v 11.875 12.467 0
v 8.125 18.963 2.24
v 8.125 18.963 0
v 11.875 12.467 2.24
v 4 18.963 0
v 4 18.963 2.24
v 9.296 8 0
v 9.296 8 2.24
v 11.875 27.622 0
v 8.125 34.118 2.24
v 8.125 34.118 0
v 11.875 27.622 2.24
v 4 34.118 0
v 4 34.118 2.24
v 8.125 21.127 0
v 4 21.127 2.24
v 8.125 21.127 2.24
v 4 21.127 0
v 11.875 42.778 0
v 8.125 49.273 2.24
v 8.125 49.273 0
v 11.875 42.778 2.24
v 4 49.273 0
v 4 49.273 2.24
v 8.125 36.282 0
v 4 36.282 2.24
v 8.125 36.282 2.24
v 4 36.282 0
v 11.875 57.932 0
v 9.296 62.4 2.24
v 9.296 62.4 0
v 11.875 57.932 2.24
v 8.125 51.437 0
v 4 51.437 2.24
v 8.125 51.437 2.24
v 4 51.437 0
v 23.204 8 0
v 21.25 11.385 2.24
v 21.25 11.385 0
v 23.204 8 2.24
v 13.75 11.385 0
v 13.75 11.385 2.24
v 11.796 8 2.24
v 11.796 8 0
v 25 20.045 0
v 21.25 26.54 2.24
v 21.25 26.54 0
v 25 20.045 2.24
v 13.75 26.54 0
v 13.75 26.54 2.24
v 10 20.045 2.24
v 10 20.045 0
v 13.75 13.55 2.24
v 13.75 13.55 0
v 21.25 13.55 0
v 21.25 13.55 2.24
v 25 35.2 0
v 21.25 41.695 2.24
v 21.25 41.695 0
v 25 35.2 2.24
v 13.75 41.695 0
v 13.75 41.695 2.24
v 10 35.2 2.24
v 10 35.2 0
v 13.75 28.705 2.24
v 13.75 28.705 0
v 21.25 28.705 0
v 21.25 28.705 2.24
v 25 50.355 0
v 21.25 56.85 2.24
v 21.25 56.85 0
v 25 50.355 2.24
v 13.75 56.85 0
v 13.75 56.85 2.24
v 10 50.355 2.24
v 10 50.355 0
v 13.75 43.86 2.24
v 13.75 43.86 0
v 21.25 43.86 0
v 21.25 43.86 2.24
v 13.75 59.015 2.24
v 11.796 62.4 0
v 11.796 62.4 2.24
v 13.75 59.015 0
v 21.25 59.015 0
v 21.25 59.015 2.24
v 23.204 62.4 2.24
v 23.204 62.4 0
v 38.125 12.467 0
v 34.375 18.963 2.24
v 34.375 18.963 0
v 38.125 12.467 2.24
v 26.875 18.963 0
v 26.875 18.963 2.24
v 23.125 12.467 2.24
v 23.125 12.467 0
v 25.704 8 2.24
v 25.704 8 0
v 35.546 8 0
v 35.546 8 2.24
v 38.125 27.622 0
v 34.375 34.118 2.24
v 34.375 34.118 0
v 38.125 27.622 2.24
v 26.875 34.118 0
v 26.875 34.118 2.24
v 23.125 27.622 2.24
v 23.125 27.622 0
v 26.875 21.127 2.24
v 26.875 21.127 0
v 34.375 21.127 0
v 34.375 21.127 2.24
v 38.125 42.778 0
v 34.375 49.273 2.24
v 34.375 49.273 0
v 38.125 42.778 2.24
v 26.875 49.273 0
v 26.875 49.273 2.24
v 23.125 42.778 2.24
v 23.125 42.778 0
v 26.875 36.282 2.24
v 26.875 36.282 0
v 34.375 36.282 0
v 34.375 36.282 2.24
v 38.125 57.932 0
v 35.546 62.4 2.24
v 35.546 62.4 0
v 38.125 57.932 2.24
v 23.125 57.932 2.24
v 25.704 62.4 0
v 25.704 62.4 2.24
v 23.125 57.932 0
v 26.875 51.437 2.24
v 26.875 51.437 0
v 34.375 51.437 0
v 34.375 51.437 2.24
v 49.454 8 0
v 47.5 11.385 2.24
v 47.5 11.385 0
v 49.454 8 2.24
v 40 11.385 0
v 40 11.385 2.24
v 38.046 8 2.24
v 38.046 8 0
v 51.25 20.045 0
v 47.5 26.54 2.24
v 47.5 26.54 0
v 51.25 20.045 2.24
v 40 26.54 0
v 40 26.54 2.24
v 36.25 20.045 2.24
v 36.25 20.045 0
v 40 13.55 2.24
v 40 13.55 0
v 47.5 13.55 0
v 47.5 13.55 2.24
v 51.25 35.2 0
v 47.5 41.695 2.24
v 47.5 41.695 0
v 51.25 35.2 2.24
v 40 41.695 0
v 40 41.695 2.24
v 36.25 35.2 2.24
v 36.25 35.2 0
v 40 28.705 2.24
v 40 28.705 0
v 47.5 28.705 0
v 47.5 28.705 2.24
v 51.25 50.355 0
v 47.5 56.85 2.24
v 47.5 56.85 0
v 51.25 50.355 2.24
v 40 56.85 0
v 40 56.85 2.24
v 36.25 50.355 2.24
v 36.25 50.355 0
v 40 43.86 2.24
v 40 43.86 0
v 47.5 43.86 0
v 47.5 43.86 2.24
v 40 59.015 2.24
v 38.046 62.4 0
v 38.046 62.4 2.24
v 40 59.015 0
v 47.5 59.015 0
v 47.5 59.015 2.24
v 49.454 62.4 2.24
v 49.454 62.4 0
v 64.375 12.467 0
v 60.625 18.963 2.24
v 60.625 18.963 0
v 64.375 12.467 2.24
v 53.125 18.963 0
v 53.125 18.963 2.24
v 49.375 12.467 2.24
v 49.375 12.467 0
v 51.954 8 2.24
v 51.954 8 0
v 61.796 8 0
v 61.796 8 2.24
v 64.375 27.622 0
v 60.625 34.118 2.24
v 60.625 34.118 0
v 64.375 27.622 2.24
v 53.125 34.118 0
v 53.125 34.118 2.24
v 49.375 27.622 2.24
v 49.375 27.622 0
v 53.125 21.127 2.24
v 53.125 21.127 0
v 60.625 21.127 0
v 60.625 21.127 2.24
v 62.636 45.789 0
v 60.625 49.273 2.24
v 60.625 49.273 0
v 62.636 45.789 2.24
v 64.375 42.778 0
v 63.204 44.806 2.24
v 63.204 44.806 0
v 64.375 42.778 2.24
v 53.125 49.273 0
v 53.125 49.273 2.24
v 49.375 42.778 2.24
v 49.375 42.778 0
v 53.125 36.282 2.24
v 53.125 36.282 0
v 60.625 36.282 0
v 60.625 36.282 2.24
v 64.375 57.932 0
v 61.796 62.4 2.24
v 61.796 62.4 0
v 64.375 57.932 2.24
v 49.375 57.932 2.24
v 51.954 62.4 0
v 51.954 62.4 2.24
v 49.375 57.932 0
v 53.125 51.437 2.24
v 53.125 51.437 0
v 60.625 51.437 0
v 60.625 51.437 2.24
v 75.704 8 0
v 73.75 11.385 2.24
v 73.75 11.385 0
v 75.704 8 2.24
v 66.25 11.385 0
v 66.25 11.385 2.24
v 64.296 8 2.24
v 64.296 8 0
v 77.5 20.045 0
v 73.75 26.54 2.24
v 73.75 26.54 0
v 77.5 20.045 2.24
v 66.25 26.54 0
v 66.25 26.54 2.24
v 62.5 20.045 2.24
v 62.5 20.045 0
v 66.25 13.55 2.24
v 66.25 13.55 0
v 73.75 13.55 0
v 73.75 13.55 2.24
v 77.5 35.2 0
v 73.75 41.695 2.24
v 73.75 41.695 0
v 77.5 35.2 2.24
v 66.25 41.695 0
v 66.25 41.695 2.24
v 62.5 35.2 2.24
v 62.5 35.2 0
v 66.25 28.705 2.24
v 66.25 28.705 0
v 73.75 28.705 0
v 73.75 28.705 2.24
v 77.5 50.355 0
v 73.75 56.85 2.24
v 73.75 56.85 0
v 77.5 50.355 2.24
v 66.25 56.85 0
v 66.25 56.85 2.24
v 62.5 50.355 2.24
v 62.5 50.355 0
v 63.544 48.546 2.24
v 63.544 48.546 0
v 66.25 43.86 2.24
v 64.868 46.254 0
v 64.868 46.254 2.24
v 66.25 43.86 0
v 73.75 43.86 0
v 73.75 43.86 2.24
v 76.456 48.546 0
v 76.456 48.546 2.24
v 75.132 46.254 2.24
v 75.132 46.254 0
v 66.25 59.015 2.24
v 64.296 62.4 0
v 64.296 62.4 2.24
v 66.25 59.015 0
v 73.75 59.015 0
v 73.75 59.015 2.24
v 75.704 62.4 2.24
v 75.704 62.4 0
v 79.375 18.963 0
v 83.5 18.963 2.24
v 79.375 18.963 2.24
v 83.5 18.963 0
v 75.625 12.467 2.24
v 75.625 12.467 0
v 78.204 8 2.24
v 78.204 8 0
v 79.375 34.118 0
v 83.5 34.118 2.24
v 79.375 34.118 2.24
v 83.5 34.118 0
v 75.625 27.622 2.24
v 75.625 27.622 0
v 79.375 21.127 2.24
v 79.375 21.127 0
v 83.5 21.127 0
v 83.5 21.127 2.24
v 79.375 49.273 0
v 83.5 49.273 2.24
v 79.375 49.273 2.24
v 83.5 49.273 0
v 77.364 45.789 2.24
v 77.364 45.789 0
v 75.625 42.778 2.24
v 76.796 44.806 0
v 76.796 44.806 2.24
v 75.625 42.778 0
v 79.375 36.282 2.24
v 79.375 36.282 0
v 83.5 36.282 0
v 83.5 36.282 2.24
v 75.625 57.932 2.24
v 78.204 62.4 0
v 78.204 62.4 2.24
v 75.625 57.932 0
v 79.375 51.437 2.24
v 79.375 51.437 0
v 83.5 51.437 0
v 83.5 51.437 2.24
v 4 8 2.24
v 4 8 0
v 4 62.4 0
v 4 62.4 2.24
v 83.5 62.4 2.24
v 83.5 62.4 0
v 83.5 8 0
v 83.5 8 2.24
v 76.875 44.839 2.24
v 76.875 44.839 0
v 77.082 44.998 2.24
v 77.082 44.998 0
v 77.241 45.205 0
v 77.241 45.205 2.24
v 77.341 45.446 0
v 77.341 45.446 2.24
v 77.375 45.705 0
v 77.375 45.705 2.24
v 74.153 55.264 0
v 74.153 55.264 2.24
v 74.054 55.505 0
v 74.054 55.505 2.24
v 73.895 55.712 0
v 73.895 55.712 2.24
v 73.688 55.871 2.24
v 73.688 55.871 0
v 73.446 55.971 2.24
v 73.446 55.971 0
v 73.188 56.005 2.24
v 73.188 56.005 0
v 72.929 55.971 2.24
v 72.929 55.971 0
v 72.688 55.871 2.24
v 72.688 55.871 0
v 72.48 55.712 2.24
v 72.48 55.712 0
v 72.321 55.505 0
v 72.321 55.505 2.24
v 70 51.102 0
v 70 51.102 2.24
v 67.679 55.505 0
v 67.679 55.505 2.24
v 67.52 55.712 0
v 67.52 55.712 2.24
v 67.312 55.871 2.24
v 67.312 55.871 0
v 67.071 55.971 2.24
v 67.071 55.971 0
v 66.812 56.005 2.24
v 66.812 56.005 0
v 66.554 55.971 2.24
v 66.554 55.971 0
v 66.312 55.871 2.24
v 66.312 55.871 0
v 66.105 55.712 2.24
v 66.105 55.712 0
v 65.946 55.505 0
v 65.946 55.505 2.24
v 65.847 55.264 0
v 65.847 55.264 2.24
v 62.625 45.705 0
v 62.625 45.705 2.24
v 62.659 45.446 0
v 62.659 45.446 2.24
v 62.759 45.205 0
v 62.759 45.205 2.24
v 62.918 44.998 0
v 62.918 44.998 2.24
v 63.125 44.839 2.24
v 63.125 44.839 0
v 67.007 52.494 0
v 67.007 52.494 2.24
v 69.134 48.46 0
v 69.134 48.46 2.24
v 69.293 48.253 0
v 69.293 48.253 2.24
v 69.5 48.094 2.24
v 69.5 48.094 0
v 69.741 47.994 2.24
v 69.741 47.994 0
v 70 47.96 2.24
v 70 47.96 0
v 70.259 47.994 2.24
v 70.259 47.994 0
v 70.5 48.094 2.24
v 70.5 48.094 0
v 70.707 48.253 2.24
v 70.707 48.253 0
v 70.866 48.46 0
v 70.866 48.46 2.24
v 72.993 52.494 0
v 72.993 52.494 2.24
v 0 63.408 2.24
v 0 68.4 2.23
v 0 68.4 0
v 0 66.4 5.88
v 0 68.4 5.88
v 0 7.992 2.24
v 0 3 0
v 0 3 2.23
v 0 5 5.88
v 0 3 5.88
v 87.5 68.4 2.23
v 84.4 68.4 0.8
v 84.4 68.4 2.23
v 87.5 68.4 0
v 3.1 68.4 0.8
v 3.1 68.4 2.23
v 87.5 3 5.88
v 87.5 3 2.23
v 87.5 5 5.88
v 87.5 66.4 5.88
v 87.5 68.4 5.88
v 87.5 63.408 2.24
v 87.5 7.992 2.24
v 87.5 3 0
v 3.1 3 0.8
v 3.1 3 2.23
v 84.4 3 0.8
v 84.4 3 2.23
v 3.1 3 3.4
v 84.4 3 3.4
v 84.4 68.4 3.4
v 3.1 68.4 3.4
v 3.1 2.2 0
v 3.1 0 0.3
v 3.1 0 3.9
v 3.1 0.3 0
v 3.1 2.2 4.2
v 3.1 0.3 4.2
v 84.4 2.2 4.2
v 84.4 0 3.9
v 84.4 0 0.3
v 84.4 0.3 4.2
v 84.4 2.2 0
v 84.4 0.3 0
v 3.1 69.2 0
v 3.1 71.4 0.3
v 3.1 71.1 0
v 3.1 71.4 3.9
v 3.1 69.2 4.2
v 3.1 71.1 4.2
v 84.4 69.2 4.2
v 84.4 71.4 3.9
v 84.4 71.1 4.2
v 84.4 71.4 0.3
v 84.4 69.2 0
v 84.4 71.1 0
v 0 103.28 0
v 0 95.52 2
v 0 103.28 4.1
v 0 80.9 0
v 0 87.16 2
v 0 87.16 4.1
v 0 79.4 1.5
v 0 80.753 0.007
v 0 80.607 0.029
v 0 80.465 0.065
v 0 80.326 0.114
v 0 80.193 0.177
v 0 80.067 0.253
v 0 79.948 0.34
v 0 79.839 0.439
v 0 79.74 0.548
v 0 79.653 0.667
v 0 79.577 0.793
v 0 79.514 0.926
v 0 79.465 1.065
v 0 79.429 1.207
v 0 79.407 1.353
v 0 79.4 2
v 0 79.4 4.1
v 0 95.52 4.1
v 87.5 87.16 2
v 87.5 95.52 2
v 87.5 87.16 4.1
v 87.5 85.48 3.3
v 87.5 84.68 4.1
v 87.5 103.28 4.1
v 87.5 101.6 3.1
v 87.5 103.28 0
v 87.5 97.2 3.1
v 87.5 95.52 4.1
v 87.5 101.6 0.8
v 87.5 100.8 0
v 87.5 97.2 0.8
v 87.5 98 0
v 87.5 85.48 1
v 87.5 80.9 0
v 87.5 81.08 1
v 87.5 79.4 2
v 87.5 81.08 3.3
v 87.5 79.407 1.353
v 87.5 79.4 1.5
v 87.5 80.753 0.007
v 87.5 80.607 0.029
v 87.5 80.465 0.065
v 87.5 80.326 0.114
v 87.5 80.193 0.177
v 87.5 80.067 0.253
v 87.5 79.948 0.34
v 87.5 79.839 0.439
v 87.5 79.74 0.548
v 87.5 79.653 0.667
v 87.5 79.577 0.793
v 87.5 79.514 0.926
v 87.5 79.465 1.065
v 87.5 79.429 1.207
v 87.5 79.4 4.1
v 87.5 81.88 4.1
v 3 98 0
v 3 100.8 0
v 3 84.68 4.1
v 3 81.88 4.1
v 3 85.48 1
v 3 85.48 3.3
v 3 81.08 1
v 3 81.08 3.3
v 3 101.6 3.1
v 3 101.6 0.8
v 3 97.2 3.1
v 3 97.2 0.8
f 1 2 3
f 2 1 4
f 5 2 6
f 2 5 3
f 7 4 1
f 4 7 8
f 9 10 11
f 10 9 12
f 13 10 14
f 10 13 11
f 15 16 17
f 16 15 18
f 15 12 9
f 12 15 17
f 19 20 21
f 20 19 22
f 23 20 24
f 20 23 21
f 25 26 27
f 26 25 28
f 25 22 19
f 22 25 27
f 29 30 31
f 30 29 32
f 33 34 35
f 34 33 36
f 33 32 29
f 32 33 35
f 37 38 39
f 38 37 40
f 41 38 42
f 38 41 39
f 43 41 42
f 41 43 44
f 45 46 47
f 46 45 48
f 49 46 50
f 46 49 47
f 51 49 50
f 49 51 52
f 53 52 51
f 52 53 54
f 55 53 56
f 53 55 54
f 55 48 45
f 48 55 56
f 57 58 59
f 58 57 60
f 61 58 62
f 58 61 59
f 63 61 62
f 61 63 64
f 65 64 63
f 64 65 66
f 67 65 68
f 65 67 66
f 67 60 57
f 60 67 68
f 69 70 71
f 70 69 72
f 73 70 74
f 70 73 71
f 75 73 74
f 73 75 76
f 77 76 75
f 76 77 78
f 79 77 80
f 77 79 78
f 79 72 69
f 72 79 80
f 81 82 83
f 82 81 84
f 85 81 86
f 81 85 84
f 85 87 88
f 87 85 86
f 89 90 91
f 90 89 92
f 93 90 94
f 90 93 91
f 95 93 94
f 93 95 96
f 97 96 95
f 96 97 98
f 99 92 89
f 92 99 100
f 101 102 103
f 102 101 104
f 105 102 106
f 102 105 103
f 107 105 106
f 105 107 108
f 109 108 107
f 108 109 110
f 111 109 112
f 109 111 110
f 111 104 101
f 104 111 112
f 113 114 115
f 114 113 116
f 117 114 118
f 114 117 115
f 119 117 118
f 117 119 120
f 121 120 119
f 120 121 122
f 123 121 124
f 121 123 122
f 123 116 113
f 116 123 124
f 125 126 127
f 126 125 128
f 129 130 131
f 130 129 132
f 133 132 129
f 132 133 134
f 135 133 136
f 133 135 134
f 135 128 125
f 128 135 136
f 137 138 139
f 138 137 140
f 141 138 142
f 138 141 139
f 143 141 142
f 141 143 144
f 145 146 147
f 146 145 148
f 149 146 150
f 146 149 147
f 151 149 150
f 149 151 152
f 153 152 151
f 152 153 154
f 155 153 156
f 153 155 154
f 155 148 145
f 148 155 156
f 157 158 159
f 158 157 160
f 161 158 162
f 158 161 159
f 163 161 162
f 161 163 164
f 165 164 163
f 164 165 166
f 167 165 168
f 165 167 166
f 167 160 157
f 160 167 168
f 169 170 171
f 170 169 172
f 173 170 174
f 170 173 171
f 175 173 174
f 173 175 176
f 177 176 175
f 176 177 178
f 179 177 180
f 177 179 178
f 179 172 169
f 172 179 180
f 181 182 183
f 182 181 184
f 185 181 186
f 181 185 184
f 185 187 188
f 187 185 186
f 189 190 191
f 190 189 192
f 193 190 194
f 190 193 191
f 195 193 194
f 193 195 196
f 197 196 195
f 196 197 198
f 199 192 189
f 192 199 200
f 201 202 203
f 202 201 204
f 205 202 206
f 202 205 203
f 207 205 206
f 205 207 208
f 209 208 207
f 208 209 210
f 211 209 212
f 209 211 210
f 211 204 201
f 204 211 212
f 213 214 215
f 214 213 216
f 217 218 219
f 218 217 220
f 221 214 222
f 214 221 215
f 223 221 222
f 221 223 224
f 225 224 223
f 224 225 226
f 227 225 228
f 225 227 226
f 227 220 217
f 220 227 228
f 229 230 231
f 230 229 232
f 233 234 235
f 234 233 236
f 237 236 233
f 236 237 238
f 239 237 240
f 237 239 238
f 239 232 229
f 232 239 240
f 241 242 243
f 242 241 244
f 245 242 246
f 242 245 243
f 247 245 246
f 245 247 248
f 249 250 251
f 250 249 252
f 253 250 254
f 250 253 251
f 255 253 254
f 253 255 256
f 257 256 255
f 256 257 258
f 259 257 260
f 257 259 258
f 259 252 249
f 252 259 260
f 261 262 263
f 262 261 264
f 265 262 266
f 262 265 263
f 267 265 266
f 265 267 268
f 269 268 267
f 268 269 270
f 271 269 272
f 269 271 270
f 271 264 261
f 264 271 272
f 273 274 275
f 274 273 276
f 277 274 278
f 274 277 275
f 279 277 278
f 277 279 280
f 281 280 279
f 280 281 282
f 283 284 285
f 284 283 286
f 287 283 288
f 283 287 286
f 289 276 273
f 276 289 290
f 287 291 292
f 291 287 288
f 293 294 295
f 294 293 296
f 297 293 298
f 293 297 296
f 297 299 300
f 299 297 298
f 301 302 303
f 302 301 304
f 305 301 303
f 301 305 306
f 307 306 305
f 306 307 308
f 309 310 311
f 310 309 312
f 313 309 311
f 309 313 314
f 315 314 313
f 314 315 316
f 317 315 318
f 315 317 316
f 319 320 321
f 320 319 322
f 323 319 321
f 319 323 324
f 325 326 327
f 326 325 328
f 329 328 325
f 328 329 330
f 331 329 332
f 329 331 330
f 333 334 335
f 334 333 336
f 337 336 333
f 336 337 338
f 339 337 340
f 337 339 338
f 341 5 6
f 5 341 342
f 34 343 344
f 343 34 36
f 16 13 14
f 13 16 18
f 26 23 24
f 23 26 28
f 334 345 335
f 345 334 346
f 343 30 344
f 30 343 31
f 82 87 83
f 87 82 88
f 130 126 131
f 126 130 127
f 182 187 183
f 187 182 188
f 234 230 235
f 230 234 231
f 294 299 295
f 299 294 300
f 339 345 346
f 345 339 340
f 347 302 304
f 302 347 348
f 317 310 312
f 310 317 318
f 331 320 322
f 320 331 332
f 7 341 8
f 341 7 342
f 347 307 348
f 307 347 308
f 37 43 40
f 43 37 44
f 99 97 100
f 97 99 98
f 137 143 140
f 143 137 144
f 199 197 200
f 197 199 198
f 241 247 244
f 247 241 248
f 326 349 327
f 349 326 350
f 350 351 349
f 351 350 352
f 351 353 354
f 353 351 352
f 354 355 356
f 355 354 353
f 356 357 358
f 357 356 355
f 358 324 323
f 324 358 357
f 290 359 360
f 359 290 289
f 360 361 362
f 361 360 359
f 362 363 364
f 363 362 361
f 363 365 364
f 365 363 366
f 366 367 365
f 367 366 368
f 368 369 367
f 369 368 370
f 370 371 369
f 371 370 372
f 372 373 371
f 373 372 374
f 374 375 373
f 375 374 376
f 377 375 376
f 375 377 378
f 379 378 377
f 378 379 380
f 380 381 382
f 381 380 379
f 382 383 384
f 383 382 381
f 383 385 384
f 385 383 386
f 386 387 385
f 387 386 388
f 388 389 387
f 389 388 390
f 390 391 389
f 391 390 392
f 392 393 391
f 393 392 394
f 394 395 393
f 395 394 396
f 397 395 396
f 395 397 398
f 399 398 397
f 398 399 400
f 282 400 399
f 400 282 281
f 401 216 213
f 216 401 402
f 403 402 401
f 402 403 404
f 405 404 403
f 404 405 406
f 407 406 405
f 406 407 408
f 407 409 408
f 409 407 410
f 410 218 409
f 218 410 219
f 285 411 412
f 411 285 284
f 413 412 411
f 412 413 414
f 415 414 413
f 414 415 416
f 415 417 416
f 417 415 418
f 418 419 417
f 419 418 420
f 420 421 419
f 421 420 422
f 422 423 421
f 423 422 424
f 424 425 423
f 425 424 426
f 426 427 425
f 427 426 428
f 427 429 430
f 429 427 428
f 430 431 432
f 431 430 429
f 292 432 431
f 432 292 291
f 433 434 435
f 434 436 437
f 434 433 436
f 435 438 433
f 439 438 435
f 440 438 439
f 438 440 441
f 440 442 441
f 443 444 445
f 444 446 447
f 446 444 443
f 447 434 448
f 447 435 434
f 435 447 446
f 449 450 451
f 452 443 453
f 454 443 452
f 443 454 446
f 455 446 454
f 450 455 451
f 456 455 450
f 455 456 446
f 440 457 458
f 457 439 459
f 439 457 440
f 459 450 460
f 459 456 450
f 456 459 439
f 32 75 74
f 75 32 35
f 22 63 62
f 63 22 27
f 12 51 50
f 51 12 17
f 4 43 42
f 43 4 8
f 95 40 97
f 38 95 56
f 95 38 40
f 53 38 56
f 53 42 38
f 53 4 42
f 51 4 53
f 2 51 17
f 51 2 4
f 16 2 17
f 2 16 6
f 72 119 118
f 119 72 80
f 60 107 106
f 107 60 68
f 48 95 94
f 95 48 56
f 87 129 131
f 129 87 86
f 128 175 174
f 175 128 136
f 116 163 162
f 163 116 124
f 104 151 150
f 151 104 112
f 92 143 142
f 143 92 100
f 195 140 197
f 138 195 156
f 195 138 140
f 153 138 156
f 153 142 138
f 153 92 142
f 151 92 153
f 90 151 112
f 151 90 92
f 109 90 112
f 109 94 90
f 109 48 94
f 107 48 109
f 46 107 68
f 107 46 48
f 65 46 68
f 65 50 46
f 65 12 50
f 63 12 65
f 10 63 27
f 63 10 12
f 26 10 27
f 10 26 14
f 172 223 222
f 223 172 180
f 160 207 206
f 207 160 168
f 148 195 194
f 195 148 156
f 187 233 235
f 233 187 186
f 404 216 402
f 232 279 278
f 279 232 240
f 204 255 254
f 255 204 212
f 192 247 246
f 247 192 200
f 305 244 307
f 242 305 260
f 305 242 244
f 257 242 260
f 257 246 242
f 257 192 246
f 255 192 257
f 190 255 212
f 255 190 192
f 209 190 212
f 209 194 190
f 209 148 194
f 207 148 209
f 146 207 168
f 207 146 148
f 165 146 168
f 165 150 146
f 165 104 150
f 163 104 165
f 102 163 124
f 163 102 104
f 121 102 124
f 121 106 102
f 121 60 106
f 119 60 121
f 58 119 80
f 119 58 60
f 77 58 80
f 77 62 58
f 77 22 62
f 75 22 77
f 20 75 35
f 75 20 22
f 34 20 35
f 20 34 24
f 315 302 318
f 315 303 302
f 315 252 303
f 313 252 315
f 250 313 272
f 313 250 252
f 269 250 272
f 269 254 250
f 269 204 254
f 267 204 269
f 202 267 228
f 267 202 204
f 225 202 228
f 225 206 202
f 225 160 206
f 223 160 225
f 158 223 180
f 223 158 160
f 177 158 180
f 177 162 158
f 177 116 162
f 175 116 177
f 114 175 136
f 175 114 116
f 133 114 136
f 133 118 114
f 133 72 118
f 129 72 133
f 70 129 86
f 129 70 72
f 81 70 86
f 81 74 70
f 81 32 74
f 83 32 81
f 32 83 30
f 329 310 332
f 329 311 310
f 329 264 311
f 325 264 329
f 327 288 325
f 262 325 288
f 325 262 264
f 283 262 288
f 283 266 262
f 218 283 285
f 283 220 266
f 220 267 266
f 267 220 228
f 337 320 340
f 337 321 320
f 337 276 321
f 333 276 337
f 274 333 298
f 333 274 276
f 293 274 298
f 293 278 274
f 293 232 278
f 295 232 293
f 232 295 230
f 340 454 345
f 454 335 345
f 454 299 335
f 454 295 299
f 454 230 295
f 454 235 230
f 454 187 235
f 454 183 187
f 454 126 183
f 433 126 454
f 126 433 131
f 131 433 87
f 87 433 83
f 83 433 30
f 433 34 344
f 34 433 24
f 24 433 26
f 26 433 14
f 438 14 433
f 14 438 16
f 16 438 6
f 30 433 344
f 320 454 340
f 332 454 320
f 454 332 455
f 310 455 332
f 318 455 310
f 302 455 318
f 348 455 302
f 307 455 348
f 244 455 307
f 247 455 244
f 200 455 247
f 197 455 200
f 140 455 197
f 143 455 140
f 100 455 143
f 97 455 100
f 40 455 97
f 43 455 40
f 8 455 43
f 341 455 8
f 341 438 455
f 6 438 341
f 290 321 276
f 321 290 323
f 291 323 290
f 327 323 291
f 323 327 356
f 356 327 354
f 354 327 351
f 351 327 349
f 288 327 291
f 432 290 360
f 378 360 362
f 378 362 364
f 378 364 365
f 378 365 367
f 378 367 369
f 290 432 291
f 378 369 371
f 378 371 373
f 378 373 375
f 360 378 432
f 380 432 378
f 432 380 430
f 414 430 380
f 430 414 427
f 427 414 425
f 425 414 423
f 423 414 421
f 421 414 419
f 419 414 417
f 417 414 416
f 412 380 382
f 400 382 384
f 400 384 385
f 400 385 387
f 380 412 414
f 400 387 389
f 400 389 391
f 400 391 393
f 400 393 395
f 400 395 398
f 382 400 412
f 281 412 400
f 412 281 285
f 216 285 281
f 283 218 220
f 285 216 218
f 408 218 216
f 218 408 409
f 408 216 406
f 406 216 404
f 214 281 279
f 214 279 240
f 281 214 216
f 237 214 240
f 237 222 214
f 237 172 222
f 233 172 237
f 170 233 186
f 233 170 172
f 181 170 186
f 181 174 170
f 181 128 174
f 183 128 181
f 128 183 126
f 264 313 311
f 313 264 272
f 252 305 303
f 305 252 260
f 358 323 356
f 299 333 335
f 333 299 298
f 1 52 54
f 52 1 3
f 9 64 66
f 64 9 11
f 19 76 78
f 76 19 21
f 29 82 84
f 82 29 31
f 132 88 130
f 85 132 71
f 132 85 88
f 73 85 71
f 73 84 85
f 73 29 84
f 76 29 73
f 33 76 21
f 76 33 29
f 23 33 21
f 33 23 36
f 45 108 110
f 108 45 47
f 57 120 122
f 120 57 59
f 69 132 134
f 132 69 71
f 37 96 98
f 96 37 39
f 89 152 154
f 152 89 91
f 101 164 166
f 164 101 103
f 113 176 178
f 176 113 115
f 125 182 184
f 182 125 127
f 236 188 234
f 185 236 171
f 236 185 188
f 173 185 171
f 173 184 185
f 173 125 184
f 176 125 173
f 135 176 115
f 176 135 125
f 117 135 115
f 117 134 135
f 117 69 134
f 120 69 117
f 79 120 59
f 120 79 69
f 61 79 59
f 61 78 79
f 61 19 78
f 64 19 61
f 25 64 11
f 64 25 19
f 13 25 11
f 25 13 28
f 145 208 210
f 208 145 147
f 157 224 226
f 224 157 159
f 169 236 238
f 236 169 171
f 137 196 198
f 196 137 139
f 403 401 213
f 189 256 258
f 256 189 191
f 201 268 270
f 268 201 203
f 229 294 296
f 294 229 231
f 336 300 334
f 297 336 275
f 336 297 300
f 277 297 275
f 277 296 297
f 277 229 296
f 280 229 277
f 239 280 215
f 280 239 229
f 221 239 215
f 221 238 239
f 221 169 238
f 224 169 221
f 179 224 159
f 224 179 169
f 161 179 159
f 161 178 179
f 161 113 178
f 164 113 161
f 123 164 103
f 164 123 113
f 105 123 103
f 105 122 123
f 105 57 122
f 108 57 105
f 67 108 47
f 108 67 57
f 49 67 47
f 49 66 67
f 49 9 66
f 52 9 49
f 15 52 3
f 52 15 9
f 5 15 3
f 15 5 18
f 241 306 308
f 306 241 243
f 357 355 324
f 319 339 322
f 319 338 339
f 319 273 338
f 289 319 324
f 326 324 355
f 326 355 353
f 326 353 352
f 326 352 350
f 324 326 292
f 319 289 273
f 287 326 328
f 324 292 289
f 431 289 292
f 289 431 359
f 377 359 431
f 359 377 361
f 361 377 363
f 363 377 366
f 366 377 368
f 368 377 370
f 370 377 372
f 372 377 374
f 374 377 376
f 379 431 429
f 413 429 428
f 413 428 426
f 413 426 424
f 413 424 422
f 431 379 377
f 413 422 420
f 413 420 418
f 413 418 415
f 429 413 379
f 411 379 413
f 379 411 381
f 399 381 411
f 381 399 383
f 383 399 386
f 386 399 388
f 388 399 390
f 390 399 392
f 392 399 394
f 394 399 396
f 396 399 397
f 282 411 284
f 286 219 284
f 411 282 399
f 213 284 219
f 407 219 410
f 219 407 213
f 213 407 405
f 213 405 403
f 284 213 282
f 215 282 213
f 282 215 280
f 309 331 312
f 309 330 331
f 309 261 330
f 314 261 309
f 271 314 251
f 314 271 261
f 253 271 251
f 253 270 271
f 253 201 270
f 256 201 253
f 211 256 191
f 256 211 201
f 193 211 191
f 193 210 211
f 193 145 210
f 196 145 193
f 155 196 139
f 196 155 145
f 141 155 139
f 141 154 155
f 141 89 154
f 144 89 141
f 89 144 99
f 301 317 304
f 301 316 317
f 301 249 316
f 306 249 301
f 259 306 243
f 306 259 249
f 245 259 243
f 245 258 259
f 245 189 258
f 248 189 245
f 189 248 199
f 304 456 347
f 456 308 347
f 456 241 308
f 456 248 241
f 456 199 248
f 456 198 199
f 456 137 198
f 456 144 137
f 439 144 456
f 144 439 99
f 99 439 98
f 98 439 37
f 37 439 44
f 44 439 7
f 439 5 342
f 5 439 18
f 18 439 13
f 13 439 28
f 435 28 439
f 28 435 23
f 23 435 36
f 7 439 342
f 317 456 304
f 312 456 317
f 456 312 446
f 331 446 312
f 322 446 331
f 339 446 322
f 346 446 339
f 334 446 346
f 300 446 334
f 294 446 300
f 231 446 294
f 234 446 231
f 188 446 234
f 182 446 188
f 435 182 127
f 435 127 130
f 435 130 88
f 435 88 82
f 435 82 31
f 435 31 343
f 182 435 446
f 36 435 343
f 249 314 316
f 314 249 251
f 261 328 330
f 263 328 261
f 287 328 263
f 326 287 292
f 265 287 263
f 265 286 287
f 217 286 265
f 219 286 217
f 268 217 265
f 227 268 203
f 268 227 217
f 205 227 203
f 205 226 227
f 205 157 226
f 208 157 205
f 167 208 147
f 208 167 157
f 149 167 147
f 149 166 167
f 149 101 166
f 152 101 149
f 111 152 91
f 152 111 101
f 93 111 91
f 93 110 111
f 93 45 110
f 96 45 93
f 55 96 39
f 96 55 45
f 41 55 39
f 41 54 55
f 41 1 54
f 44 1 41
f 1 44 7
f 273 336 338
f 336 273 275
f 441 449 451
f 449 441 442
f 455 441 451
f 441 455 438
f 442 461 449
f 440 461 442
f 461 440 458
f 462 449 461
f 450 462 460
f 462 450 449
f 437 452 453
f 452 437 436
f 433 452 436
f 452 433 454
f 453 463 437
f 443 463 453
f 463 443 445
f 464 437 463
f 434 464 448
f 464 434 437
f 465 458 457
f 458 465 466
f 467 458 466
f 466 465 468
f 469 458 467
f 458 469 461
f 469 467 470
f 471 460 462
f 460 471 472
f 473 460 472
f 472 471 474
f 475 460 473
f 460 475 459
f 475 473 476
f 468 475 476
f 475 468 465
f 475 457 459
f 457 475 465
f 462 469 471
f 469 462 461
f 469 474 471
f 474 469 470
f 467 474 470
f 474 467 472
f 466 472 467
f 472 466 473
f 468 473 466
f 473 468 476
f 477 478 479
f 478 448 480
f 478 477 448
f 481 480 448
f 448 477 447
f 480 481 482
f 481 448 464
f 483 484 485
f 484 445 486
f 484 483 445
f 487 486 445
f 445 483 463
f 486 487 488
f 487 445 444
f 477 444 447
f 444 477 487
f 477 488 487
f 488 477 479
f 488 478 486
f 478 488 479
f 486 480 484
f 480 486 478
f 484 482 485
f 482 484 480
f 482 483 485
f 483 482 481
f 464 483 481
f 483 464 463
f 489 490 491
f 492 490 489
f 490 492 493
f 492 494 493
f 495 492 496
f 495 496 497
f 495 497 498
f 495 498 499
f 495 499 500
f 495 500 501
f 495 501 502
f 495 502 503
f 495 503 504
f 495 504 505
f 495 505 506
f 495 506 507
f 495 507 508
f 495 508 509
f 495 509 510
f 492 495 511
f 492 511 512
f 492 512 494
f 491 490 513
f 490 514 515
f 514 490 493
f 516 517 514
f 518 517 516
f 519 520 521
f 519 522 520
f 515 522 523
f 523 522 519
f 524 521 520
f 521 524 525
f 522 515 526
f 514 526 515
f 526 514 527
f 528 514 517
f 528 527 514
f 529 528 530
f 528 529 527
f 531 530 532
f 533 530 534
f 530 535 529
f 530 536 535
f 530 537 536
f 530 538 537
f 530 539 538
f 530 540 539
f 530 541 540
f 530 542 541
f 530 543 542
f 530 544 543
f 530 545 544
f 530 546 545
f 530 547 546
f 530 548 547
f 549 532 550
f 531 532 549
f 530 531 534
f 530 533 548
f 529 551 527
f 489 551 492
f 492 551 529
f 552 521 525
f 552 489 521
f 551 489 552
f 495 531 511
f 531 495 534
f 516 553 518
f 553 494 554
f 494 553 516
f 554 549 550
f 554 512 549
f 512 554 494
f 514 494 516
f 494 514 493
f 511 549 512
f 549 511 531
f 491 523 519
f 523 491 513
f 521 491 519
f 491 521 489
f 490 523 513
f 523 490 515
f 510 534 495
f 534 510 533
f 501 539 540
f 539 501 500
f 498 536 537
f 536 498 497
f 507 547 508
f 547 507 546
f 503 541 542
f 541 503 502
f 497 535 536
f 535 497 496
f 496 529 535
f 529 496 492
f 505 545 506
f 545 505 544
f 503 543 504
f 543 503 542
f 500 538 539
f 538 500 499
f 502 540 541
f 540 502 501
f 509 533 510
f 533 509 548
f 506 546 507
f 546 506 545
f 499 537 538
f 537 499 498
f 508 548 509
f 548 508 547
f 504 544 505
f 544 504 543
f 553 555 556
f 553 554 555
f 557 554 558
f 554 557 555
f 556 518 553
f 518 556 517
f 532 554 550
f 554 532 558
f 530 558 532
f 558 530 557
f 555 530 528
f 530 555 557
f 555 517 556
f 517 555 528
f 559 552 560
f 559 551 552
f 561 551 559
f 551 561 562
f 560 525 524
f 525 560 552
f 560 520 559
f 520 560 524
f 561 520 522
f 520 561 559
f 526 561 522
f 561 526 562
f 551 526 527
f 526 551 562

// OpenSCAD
// Wake modular v6: linkable chain. v5 is kept as is.
// Baseplate: the same ridge AND thickening band on BOTH ends, both on the same face and at the same y, so it prints flat.
// Long lip: one channel on each face. Top-face channel at the near (D) end, underside channel at the far end,
//   so the chain zig-zags: plate above the lip at one end, plate below it at the other. Same play as v5, no detent.
// The v5 stacking tab and its groove are gone.
//
// Letters: D back face, F front face, K blind end (x=0), L open end (x=width) where glue goes.

part      = "print";   // "print" | "baseplate" | "bottom_lip" | "assembled"
test_mode = false;     // true = 30mm coupon, false = full riser

half_length      = true;    // prototype: half of the 175mm width
width            = test_mode ? 30 : (half_length ? 87.5 : 175);
back_height      = 70.5;    // overall height, lip underside to tab top
bottom_lip_depth = 20;
wall             = 2;       // lip thickness
panel_t          = wall + 2 * 0.12;   // baseplate thickness, extra layers on the back side only

hex_size   = 15;
hex_gap    = 2.5;

// W letter: the W strokes are laid over the hex grid, hexes under a stroke are partly or fully filled in
letter_on       = false; // big W across the panel (uses the finer grid below)
letter_flip     = true;  // model z runs from the ridge end (bottom) up, true = W reads upright with the ridge end at the TOP
letter_hex_size = 10;    // grid size while the letter is on
letter_hex_gap  = 2.0;
letter_h_frac   = 0.8;   // W height as a fraction of the hex area height
letter_aspect   = 1.3;   // W width / height
letter_stroke   = 9;     // W stroke thickness in mm

// small W inside one hex, bottom right as seen with the ridge end at the top
small_w_on     = true;
small_w_w      = 0.85;  // W centre-line width as a fraction of the hex size
small_w_h      = 0.62;  // W centre-line height as a fraction of the hex size
small_w_stroke = 2.0;
hs = letter_on ? letter_hex_size : hex_size;
hg = letter_on ? letter_hex_gap  : hex_gap;
border_x   = 4;
border_top = 6;
fillet_r   = 1.5;

engrave      = false;
brand_text   = "BlueBytes";
version_text = "Wake v27";
tag_size     = 3.5;
tag_depth    = 0.5;
tag_font     = "Liberation Sans:style=Bold";
tag_margin_x = 10;
tag_margin_y = 6;

// ridge (baseplate) / groove (long lip)
ridge_h     = 3.0;
ridge_head  = 4.2;
flare       = 0.8;   // 45 deg flank
dt_clear    = 0.1;   // depth clearance and detent clearance
back_clear  = 0.0;   // clearance on the D side, 0 = lip seats flush against the back
front_clear = 0.2;   // all the lateral play goes on the F side
dt_stop     = 3;
tip_ch      = 0.3;
floor_t     = 1.0;
side_wall   = 1.68;  // 4 perimeters at 0.42 mm
ramp_h      = 3;
band_v      = 2;

panel_top_trim = 1.0;  // keeps the v5 panel height; the top ridge now starts at z_top

reverse_stopper = false;  // true = the lip's blind stopper is at x=width, open end at x=0

test_panel_h   = 30;
test_lip_depth = 14;

hh      = ridge_head / 2;
nh      = (ridge_head - 2 * flare) / 2;
F_y     = wall;
back_extra = panel_t - wall;
yc      = F_y - hh;
g_d     = ridge_h + dt_clear;
D_y     = yc - hh - back_clear - side_wall;
y_front = yc + hh + front_clear + side_wall;
boss_h  = g_d + floor_t;
z_bot   = boss_h;
total_h = test_mode ? z_bot + test_panel_h + panel_top_trim : back_height;
z_top   = total_h - panel_top_trim;
band_h  = band_v + ramp_h;

$fn = 32;

function cells(w, h) =
    let (pitch = hs + hg, step_x = pitch * 0.75, step_z = pitch * 0.866,
         cx = w / 2, cz = h / 2,
         ncols = ceil(w / (2 * step_x)) + 2, nrows = ceil(h / (2 * step_z)) + 2)
    [for (col = [-ncols : ncols]) for (row = [-nrows : nrows])
        let (parity = ((col % 2) + 2) % 2,
             x = cx + col * step_x,
             z = cz + row * step_z + (parity == 0 ? 0 : step_z / 2))
        [x, z]];

// a cell fully inside the hex area, as far to the bottom right as possible (right = +x, bottom = +z)
function corner_cell(w, h) =
    let (c = [for (p = cells(w, h)) if (p[0] - hs / 2 >= 0 && p[0] + hs / 2 <= w && p[1] - hs / 2 >= 0 && p[1] + hs / 2 <= h) p],
         best = max([for (p = c) p[0] + p[1]]))
    [for (p = c) if (p[0] + p[1] == best) p][0];

module hex_grid(w, h) {
    for (c = cells(w, h))
        translate([c[0], panel_t / 2, c[1]]) rotate([90, 0, 0])
            cylinder(d = hs, h = panel_t + 4, center = true, $fn = 6);
}

module w_shape2d(lw, lh, stroke) {
    f = letter_flip ? -1 : 1;
    pts = [[-lw / 2, f * lh / 2], [-lw / 4, -f * lh / 2], [0, f * lh * 0.15], [lw / 4, -f * lh / 2], [lw / 2, f * lh / 2]];
    for (i = [0 : 3]) hull() {
        translate(pts[i]) circle(d = stroke, $fn = 24);
        translate(pts[i + 1]) circle(d = stroke, $fn = 24);
    }
}

module hex_pattern(w, h) {
    lh = h * letter_h_frac - letter_stroke;
    lw = min(lh * letter_aspect, w - letter_stroke - 2);
    cc = corner_cell(w, h);
    difference() {
        intersection() { hex_grid(w, h); cube([w, panel_t + 4, h]); }
        if (letter_on)
            translate([w / 2, panel_t / 2, h / 2]) rotate([90, 0, 0])
                linear_extrude(height = panel_t + 6, center = true) w_shape2d(lw, lh, letter_stroke);
        if (small_w_on)
            translate([cc[0], panel_t / 2, cc[1]]) rotate([90, 0, 0])
                linear_extrude(height = panel_t + 6, center = true)
                    w_shape2d(hs * small_w_w, hs * small_w_h, small_w_stroke);
    }
}

module xflip() {
    if (reverse_stopper) translate([width, 0, 0]) mirror([1, 0, 0]) children();
    else children();
}

// profiles are (y, z), extruded along X
module along_x(x0, len) { translate([x0, 0, 0]) rotate([90, 0, 90]) linear_extrude(len) children(); }

// e = joint plane, s = direction into the lip
module groove(e, s) {
    d = g_d;
    along_x(dt_stop, width - dt_stop + 1)
        polygon([[yc - nh - back_clear, e - s], [yc - nh - back_clear, e],
                 [yc - hh - back_clear, e + s * flare], [yc - hh - back_clear, e + s * d],
                 [yc + hh + front_clear, e + s * d], [yc + hh + front_clear, e + s * flare],
                 [yc + nh + front_clear, e], [yc + nh + front_clear, e - s]]);
}

module ridge_body(e, s) {
    along_x(dt_stop + dt_clear, width - 2 * (dt_stop + dt_clear))
        polygon([[yc - nh, e - s * 0.01], [yc - nh, e], [yc - hh, e + s * flare],
                 [yc - hh, e + s * (ridge_h - tip_ch)], [yc - hh + tip_ch, e + s * ridge_h],
                 [yc + hh - tip_ch, e + s * ridge_h], [yc + hh, e + s * (ridge_h - tip_ch)],
                 [yc + hh, e + s * flare], [yc + nh, e], [yc + nh, e - s * 0.01]]);
}

module ridge(e, s) { ridge_body(e, s); }

module panel() {
    translate([0, -back_extra, z_bot]) difference() {
        cube([width, panel_t, z_top - z_bot]);
        translate([border_x, -1, band_h])
            hex_pattern(width - 2 * border_x, z_top - z_bot - band_h - border_top);
    }
}

module end_band(z0, s) {
    yb = -back_extra + 0.01;
    along_x(0, width) polygon([[yb, z0], [D_y, z0], [D_y, z0 + s * band_v], [yb, z0 + s * band_h]]);
}

module baseplate() {
    union() {
        panel();
        end_band(z_bot, 1);
        end_band(z_top, -1);
        ridge(z_bot, -1);
        ridge(z_top, 1);
    }
}

module rounded_lip(w, depth) {
    r = wall / 2;
    union() {
        cube([w, depth - r, wall]);
        translate([0, depth - r, r]) rotate([0, 90, 0]) cylinder(r = r, h = w, $fn = 32);
    }
}

module outer_round(y0, z0, r) {
    translate([0, y0, z0]) difference() {
        cube([width, r, r]);
        translate([0, r, r]) rotate([0, 90, 0]) cylinder(r = r, h = width, $fn = 64);
    }
}

module tag_text(txt, x_pos) {
    translate([x_pos, bottom_lip_depth - tag_margin_y, wall - tag_depth])
        rotate([0, 0, 180]) linear_extrude(height = tag_depth + 0.5)
            text(txt, size = tag_size, font = tag_font, halign = "center", valign = "center");
}

module bottom_lip() {
    end_y = test_mode ? test_lip_depth : bottom_lip_depth;
    boss_w = y_front - D_y;
    dy = end_y - y_front;   // shifts the channel profile to the far end, same y layout as the near channel
    union() {
        difference() {
            union() {
                translate([0, D_y, 0]) rounded_lip(width, end_y - D_y);
                translate([0, D_y, 0]) cube([width, boss_w, boss_h]);
                translate([0, end_y - boss_w, 0]) cube([width, boss_w, boss_h]);
            }
            outer_round(D_y, 0, fillet_r);
            xflip() groove(z_bot, -1);
            translate([0, dy, 0]) xflip() groove(0, 1);   // underside channel, opens on the z=0 face
            if (!test_mode && engrave) {
                tag_text(brand_text, width - border_x - tag_margin_x);
                tag_text(version_text, border_x + tag_margin_x);
            }
        }
    }
}

// baseplate prints F down, both ridges lying in the bed plane
module flat(z0) { translate([0, -z0, F_y]) rotate([-90, 0, 0]) children(); }

module bottom_lip_print() { translate([0, -D_y, 0]) bottom_lip(); }

module layout() {
    bp_len = (z_top - z_bot) + 2 * ridge_h;
    flat(z_bot - ridge_h) baseplate();
    translate([0, bp_len + 8, 0]) bottom_lip_print();
}

if (part == "baseplate_print") flat(z_bot - ridge_h) baseplate();
else if (part == "bottom_lip_print") bottom_lip_print();
else if (part == "baseplate") baseplate();
else if (part == "bottom_lip") bottom_lip();
else if (part == "preview2d") projection() rotate([-90, 0, 0]) baseplate();
else if (part == "assembled") {
    baseplate(); bottom_lip();
    translate([0, (test_mode ? test_lip_depth : bottom_lip_depth) - y_front, -z_top]) baseplate();
}
else layout();
